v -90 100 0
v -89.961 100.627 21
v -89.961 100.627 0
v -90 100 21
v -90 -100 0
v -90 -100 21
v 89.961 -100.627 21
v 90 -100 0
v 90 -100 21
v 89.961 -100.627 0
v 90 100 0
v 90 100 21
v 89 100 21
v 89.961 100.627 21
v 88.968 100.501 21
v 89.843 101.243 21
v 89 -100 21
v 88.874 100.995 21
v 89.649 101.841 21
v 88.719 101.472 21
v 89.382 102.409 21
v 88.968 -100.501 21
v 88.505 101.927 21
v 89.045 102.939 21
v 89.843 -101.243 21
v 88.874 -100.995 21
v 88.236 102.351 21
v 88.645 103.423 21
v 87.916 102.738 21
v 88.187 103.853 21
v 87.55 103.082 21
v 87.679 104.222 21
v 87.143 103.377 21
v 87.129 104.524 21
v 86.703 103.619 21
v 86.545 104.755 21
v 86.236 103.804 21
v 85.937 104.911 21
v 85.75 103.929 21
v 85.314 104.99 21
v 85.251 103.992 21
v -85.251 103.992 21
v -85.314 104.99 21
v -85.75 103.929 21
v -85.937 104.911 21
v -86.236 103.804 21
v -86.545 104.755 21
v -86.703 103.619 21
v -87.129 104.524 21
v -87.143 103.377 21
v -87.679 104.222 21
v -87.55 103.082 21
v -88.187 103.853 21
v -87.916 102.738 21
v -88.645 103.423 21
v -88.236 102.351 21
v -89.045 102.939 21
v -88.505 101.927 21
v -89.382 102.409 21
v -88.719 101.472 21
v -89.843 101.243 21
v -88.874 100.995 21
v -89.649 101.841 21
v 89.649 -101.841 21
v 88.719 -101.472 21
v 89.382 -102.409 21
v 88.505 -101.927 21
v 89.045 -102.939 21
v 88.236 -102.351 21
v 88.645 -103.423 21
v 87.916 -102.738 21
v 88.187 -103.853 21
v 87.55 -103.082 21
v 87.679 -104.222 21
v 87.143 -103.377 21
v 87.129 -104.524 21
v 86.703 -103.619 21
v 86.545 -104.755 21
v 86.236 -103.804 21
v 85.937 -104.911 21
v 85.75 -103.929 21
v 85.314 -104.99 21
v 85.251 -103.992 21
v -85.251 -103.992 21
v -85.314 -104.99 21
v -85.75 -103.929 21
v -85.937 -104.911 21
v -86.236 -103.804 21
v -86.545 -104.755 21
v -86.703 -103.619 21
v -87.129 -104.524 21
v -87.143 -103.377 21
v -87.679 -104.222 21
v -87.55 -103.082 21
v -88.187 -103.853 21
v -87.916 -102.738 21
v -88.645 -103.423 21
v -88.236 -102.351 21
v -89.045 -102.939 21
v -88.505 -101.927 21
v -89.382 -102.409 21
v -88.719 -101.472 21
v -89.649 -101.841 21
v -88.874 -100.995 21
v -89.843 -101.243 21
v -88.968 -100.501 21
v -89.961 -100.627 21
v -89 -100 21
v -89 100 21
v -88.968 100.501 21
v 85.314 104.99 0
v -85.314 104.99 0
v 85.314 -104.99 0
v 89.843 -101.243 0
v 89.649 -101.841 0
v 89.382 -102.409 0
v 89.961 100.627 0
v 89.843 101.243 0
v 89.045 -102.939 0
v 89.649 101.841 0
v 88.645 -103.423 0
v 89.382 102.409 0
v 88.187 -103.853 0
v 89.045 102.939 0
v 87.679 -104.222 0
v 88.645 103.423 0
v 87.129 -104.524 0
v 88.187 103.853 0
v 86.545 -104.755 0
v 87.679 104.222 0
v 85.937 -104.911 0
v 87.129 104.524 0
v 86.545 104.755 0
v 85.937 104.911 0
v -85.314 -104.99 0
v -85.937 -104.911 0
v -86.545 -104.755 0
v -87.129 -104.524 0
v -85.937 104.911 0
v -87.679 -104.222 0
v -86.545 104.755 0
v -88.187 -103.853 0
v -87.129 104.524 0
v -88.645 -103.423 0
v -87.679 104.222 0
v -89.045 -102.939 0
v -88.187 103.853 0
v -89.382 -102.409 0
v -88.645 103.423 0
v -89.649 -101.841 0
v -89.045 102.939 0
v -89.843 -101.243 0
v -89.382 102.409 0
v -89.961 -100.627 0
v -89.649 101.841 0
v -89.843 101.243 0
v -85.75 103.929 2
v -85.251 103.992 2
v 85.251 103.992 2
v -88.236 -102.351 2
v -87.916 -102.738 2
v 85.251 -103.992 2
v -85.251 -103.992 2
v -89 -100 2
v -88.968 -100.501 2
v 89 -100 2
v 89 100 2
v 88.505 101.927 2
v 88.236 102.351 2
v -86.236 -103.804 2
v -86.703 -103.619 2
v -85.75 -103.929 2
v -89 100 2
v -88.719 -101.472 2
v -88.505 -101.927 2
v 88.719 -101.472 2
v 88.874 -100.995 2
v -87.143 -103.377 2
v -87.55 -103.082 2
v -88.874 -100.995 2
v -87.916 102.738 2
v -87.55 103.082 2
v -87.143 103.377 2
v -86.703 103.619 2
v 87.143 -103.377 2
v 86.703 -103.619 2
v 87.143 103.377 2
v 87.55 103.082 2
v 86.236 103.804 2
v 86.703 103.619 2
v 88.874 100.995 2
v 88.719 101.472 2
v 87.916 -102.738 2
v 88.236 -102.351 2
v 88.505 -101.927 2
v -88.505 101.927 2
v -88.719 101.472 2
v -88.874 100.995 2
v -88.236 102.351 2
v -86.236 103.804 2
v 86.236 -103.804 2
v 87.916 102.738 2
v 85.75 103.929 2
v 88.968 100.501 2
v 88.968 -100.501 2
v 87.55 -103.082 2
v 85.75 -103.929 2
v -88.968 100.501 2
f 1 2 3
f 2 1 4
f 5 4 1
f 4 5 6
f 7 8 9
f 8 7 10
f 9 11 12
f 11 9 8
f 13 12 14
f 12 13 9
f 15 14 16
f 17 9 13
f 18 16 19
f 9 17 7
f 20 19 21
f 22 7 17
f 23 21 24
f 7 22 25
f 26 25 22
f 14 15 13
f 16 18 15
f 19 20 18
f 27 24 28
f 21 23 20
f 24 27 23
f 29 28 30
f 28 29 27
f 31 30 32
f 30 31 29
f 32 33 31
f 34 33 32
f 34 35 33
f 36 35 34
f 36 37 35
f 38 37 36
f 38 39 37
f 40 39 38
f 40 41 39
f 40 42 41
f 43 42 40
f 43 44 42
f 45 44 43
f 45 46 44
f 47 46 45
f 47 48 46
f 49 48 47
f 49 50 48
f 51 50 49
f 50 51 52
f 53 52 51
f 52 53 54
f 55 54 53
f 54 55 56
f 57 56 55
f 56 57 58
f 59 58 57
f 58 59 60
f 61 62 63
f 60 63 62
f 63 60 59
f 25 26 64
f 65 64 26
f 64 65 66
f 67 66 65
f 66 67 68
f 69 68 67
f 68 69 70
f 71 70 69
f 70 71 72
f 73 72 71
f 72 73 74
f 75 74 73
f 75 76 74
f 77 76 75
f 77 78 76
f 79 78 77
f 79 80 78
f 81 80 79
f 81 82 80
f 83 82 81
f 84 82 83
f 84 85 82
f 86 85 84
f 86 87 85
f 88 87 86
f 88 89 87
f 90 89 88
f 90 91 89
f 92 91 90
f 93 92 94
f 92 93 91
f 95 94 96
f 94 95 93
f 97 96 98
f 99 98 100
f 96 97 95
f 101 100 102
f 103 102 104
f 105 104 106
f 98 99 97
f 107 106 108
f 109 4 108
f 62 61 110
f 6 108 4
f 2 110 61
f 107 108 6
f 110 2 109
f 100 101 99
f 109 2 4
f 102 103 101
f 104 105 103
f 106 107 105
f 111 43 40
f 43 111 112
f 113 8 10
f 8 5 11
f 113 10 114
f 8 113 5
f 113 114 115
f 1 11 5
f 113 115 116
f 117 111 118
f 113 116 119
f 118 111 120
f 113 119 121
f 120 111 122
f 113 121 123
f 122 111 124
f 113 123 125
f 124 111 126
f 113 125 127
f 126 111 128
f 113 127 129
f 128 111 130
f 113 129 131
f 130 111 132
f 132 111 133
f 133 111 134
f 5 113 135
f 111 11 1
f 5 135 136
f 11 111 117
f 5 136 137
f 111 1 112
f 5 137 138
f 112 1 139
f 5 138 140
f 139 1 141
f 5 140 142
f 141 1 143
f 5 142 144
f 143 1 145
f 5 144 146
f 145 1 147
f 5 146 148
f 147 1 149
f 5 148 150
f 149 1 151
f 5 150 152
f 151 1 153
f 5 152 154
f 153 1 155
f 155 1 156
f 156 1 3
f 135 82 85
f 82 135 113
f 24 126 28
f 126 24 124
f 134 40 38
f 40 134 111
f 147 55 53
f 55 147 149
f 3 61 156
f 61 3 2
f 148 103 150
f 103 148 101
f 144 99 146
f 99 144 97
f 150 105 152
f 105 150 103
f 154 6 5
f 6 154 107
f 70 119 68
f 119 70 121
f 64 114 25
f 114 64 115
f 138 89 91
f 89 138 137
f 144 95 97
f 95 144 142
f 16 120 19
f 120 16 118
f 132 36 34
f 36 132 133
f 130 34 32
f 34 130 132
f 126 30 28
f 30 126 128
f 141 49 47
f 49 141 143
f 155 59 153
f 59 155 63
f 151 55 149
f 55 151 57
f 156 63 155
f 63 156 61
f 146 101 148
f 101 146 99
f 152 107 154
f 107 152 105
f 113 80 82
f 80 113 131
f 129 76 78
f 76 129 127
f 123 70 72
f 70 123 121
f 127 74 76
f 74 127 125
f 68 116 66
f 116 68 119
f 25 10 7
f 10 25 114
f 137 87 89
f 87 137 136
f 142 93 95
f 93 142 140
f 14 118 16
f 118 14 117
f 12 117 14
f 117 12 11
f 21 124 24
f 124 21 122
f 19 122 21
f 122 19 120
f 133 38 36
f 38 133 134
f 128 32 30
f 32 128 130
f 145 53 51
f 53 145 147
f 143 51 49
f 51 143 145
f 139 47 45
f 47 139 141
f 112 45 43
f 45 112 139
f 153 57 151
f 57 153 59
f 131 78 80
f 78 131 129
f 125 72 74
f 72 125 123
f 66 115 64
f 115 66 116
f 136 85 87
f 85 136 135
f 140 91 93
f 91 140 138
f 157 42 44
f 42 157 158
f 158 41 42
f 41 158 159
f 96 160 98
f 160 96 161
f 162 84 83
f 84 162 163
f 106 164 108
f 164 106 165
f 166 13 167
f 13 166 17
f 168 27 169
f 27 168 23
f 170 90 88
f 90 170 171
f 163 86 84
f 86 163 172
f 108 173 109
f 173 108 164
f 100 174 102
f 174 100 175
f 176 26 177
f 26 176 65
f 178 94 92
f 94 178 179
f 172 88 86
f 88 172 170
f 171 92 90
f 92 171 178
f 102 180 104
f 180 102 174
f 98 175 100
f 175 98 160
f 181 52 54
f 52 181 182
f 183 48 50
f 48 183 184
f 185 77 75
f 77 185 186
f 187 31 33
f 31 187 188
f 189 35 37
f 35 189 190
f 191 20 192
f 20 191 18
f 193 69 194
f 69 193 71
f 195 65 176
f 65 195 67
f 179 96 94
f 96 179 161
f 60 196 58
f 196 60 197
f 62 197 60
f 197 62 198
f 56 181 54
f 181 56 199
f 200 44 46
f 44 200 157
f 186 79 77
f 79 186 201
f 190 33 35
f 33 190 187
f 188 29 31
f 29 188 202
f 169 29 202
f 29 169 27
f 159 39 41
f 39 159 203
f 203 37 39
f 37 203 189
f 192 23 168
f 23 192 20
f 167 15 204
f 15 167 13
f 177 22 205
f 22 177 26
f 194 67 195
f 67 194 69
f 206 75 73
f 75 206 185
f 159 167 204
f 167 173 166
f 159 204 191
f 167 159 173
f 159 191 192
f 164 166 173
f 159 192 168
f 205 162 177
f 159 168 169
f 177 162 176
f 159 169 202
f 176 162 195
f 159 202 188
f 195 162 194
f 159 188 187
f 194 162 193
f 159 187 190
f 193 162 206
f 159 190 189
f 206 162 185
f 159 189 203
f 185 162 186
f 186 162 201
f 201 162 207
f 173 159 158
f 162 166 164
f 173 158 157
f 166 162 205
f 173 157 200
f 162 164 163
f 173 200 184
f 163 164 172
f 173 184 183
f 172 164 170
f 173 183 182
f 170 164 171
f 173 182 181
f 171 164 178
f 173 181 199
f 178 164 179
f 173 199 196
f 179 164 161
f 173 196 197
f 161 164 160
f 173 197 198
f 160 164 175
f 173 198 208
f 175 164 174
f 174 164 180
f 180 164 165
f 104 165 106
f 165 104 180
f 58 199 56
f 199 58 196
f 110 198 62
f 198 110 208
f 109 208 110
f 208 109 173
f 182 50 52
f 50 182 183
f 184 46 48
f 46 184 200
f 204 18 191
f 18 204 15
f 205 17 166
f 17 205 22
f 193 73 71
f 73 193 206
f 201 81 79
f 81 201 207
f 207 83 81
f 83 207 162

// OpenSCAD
$fn = 50;


difference() {
	union() {
		hull() {
			translate(v = [-85.0000000000, 100.0000000000, 0]) {
				cylinder(h = 21, r = 5);
			}
			translate(v = [85.0000000000, 100.0000000000, 0]) {
				cylinder(h = 21, r = 5);
			}
			translate(v = [-85.0000000000, -100.0000000000, 0]) {
				cylinder(h = 21, r = 5);
			}
			translate(v = [85.0000000000, -100.0000000000, 0]) {
				cylinder(h = 21, r = 5);
			}
		}
	}
	union() {
		translate(v = [0, 0, 2]) {
			hull() {
				translate(v = [-85.0000000000, 100.0000000000, 0]) {
					cylinder(h = 19, r = 4);
				}
				translate(v = [85.0000000000, 100.0000000000, 0]) {
					cylinder(h = 19, r = 4);
				}
				translate(v = [-85.0000000000, -100.0000000000, 0]) {
					cylinder(h = 19, r = 4);
				}
				translate(v = [85.0000000000, -100.0000000000, 0]) {
					cylinder(h = 19, r = 4);
				}
			}
		}
	}
}
